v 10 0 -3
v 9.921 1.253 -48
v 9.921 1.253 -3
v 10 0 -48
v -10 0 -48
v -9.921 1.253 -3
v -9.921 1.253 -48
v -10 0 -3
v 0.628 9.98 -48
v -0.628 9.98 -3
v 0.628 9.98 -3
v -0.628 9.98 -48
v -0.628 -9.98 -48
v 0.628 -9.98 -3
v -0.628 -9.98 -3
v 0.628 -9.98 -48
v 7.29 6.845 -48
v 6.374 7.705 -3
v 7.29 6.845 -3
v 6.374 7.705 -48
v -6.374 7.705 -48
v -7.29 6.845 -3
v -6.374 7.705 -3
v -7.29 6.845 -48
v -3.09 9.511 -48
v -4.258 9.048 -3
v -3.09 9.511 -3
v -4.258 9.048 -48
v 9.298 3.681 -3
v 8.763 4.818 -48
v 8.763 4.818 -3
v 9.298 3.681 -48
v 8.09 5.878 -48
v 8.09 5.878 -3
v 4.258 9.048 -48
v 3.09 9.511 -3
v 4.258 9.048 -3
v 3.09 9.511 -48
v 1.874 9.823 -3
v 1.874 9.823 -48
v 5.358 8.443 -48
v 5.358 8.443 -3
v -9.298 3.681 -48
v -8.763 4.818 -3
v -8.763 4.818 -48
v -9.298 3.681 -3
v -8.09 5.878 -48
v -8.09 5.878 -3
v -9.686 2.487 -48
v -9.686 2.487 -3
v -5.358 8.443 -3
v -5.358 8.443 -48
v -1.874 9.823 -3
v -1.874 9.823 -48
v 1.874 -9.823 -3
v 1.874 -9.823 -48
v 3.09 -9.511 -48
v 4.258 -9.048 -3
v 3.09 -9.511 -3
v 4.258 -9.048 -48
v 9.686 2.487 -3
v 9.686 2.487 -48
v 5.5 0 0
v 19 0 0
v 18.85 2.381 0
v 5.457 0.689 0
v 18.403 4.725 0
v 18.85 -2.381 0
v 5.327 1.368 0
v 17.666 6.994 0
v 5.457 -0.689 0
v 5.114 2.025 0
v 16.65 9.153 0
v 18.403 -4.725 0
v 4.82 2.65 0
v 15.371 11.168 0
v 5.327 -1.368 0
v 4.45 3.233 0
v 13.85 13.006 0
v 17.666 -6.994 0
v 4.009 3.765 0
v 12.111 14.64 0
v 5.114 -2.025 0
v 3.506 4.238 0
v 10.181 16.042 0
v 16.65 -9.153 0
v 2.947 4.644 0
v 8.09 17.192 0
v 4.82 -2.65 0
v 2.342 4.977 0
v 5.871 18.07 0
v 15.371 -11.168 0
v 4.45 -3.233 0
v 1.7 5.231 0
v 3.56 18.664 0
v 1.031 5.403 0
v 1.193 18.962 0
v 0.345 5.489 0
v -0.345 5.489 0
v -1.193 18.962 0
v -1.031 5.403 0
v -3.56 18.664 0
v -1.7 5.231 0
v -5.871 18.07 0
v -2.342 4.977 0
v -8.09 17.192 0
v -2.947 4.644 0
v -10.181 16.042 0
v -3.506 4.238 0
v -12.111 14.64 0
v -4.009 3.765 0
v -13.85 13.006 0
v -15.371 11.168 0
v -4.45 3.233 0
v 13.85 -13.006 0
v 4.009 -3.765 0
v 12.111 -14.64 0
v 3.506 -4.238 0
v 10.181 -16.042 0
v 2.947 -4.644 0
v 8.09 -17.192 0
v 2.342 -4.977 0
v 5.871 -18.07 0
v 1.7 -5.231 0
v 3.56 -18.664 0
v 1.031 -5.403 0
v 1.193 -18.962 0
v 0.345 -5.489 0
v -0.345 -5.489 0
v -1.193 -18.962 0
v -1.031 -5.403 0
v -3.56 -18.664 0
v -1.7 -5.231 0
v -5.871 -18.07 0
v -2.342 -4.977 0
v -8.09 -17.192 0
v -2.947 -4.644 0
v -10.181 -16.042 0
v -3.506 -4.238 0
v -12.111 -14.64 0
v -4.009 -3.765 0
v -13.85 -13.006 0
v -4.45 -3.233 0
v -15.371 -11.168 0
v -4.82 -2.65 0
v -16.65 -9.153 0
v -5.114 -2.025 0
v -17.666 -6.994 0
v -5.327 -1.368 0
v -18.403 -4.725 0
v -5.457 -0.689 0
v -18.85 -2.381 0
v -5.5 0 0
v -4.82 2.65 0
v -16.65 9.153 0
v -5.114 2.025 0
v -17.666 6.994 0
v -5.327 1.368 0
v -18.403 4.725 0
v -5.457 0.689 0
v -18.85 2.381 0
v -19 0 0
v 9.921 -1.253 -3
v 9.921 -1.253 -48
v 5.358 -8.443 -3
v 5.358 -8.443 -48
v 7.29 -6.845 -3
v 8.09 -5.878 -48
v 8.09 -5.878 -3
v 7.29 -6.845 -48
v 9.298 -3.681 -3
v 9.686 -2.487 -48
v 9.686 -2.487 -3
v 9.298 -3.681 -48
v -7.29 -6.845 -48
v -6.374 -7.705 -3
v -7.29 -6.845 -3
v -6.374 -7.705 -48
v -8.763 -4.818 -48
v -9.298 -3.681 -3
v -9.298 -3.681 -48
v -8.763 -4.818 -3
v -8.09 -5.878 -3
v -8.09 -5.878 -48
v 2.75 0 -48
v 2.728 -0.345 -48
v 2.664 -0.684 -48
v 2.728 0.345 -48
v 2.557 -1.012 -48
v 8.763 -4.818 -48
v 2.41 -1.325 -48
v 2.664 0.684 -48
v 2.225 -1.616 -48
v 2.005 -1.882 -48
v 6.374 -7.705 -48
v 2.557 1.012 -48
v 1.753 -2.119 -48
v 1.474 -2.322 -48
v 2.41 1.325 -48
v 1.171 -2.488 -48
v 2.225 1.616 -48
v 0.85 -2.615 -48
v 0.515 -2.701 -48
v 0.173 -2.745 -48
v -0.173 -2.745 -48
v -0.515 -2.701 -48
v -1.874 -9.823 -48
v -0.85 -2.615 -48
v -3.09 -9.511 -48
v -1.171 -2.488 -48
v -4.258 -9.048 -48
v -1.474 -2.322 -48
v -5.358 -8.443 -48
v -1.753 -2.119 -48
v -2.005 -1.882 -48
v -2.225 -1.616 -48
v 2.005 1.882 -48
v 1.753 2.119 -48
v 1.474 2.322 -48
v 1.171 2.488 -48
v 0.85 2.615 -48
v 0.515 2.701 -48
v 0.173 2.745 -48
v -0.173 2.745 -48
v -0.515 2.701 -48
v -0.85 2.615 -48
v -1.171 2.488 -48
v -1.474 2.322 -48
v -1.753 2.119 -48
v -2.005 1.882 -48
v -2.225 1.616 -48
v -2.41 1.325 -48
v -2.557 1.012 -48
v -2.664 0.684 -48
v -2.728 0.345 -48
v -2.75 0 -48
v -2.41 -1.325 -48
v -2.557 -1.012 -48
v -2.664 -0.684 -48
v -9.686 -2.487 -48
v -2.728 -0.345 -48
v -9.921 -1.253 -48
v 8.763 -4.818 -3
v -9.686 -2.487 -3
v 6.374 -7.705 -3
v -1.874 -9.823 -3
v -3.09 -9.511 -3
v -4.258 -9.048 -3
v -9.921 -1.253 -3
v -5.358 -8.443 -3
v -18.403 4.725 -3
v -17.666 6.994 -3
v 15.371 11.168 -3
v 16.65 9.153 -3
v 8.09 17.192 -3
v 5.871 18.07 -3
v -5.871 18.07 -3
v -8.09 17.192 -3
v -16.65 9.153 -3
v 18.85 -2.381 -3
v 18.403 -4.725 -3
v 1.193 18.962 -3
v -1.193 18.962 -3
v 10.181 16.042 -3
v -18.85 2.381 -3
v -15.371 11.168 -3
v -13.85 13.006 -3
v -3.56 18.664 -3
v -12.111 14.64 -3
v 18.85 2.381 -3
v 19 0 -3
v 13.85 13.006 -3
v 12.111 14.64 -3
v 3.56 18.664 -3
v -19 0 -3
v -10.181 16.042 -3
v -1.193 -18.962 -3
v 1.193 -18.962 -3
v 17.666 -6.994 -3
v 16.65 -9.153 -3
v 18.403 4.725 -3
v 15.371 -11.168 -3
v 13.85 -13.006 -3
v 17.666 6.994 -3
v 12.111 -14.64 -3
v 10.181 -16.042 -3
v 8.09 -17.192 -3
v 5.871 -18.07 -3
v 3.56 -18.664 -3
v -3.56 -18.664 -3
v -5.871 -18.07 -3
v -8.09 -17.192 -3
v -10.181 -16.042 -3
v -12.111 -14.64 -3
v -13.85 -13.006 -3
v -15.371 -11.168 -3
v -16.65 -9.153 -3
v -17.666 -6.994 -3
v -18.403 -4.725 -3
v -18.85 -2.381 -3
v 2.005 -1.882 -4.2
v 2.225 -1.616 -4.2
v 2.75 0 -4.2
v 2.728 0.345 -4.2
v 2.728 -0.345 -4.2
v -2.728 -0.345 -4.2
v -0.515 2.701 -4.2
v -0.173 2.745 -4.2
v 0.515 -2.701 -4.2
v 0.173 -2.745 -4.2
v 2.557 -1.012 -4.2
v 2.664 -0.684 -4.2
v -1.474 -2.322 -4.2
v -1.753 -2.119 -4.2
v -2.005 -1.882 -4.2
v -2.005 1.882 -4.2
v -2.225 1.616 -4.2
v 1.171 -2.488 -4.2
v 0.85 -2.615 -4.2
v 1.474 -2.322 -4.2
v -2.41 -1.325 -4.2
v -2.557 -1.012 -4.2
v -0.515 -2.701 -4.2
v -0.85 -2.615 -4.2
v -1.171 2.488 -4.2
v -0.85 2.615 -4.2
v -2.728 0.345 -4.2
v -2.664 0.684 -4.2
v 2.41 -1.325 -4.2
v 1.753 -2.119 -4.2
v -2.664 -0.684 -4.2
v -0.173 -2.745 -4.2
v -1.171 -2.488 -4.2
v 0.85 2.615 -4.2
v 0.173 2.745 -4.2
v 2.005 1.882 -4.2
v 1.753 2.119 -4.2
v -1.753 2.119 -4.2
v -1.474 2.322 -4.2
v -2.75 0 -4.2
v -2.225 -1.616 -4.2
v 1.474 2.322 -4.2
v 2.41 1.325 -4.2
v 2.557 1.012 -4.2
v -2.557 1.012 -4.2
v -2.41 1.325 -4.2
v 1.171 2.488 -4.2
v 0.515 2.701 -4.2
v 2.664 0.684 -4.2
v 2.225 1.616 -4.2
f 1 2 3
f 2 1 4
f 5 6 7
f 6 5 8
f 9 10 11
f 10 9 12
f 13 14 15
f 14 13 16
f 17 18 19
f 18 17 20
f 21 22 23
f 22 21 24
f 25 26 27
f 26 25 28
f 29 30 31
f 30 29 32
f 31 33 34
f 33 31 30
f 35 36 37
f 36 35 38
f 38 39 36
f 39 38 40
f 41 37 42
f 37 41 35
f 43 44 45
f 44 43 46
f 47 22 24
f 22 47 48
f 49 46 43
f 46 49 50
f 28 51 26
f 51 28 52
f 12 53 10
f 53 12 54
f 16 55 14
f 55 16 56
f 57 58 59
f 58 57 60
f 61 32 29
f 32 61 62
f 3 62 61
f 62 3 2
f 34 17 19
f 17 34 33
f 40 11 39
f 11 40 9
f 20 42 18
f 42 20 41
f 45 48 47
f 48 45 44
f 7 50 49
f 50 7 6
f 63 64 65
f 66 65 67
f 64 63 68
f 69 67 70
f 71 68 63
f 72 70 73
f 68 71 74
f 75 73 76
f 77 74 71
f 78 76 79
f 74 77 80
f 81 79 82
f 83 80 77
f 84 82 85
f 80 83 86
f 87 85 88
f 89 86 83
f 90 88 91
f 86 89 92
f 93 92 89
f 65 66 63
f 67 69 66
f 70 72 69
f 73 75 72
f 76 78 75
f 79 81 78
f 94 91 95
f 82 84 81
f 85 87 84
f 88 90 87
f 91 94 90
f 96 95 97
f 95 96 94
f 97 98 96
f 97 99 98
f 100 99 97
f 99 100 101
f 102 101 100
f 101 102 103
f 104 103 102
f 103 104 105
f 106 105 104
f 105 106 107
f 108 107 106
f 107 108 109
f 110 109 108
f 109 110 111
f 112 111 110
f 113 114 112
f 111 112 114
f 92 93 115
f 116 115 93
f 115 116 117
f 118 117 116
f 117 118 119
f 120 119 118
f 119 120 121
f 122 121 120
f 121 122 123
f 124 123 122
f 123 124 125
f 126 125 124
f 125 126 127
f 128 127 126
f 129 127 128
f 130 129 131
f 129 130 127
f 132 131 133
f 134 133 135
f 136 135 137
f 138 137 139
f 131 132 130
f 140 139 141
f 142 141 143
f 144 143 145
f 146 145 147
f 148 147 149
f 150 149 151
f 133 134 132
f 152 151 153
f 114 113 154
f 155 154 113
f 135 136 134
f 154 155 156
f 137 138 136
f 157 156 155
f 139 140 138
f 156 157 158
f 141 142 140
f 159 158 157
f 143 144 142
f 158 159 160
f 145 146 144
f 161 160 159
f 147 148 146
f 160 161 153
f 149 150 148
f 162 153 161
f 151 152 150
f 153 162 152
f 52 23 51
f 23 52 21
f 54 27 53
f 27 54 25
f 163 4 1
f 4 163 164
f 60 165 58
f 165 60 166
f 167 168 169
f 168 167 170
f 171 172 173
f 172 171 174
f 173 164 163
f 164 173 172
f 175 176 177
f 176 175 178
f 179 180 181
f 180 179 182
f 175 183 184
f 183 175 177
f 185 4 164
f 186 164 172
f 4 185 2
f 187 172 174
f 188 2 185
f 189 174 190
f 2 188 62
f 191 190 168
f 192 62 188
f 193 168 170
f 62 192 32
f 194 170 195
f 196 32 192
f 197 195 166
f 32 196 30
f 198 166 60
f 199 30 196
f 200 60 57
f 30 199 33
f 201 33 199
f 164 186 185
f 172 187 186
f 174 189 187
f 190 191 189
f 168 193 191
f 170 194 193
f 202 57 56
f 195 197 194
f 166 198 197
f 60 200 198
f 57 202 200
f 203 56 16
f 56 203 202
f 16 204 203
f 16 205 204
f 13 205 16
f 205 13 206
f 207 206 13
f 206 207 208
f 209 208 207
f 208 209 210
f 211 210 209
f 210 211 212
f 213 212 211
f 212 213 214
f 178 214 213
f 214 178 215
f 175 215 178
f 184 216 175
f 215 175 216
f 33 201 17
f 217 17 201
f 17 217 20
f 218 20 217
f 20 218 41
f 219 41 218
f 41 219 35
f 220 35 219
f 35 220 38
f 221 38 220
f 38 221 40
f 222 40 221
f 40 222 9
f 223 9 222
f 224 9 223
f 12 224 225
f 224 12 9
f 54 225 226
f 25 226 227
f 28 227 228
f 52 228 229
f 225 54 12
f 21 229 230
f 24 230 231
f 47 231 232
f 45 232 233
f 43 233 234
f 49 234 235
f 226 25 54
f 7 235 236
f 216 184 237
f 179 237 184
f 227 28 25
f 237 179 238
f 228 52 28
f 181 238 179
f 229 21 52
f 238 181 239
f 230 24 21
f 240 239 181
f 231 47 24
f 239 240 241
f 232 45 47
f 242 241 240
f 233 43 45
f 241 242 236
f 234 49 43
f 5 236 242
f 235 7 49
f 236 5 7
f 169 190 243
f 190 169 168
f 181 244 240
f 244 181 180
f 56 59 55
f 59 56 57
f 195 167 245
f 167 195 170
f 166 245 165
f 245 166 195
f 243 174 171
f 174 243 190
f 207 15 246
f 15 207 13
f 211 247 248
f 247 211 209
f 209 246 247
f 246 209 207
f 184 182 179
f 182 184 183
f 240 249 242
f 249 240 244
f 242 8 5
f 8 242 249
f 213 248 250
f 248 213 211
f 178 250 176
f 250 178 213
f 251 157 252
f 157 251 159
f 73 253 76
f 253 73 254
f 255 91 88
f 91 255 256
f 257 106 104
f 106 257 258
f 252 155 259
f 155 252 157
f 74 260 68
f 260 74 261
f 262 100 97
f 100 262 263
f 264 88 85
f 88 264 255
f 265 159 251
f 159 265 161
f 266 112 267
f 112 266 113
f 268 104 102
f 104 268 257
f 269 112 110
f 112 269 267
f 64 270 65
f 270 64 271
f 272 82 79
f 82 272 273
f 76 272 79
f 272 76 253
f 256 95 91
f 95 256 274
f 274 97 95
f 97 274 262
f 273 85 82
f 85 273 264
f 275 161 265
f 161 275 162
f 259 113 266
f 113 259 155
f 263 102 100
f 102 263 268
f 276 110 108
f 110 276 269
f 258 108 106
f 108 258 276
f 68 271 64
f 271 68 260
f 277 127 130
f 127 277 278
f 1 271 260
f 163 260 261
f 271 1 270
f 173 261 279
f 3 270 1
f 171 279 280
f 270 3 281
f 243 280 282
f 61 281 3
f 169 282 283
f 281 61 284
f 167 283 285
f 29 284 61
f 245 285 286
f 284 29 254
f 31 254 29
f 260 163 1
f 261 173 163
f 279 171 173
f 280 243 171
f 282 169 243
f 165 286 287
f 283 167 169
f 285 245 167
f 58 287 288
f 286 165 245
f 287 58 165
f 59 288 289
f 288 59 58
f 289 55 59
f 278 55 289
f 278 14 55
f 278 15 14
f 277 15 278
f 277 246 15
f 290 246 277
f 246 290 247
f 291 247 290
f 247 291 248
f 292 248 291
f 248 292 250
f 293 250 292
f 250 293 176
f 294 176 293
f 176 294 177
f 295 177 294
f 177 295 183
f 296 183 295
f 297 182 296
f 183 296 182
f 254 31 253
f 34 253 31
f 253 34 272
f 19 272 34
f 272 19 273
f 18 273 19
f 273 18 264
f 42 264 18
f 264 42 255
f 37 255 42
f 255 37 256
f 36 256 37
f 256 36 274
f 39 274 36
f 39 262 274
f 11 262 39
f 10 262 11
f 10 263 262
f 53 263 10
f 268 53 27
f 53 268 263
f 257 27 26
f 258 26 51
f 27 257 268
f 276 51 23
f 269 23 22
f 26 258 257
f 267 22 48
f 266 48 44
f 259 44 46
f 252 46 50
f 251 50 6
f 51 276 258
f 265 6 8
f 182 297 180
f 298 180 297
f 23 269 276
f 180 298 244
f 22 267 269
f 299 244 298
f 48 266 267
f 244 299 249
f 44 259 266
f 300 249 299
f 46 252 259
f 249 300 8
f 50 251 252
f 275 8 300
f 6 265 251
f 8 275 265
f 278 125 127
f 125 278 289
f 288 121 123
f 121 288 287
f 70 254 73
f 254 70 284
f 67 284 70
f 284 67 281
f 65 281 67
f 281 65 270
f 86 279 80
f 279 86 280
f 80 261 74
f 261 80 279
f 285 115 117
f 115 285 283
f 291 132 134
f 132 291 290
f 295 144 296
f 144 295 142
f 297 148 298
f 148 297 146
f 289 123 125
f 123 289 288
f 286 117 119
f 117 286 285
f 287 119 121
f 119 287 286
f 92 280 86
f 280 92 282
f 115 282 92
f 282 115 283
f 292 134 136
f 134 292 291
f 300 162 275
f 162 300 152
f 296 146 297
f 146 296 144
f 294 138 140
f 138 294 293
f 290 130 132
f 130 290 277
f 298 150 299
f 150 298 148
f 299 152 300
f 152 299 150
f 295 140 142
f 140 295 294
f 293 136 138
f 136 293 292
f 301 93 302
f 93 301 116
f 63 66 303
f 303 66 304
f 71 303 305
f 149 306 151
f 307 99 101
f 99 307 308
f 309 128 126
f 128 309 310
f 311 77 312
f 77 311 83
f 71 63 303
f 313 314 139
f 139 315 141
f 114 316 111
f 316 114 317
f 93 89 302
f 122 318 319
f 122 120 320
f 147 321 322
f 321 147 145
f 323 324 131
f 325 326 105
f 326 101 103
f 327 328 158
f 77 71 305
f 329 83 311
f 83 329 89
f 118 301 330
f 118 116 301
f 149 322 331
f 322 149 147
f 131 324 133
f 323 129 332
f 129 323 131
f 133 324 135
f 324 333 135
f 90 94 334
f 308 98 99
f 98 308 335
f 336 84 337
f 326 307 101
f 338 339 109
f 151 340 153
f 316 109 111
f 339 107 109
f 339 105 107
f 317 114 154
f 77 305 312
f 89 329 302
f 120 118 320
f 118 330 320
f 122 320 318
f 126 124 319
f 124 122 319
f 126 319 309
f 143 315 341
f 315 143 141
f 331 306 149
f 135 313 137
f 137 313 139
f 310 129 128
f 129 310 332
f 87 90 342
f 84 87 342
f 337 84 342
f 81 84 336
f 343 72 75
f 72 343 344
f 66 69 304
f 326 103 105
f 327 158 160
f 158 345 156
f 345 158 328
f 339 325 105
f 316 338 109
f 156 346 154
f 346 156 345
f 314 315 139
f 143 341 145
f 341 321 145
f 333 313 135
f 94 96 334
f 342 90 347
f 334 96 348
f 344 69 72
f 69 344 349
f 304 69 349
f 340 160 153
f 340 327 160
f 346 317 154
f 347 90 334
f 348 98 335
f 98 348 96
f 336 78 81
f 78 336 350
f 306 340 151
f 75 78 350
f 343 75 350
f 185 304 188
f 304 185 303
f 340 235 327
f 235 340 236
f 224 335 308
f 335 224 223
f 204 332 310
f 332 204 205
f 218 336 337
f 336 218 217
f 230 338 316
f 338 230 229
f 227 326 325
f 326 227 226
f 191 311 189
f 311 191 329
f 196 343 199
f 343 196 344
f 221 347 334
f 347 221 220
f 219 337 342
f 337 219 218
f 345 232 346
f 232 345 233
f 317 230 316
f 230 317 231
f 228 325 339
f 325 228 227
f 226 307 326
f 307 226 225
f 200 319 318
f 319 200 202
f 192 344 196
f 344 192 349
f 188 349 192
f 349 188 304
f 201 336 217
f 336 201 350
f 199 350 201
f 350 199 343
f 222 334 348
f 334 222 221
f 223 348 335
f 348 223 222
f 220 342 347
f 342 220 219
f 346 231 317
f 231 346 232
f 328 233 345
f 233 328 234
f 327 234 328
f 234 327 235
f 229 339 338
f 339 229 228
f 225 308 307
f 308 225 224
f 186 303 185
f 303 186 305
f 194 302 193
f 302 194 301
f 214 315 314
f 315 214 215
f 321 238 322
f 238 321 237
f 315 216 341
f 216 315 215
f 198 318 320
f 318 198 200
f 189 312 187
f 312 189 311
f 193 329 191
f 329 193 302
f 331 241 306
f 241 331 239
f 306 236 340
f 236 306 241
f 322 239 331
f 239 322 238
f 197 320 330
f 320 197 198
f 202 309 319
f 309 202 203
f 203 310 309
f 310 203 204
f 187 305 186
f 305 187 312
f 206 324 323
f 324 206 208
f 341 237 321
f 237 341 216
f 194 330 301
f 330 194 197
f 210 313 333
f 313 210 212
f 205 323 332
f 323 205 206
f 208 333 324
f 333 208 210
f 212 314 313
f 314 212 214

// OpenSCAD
$fn = 50;


difference() {
	union() {
		translate(v = [0, 0, -48.0000000000]) {
			cylinder(h = 48, r = 10.0000000000);
		}
		translate(v = [0, 0, -3.0000000000]) {
			cylinder(h = 3, r = 19.0000000000);
		}
	}
	union() {
		translate(v = [0, 0, 0]) {
			rotate(a = [0, 0, 0]) {
				difference() {
					union() {
						#translate(v = [0, 0, -48.0000000000]) {
							cylinder(h = 48, r = 2.2500000000);
						}
						#translate(v = [0, 0, -4.2000000000]) {
							cylinder(h = 4.2000000000, r1 = 2.7500000000, r2 = 5.5000000000);
						}
						#translate(v = [0, 0, -48.0000000000]) {
							cylinder(h = 48, r = 2.7500000000);
						}
						#translate(v = [0, 0, -48.0000000000]) {
							cylinder(h = 48, r = 2.2500000000);
						}
					}
					union();
				}
			}
		}
	}
}
